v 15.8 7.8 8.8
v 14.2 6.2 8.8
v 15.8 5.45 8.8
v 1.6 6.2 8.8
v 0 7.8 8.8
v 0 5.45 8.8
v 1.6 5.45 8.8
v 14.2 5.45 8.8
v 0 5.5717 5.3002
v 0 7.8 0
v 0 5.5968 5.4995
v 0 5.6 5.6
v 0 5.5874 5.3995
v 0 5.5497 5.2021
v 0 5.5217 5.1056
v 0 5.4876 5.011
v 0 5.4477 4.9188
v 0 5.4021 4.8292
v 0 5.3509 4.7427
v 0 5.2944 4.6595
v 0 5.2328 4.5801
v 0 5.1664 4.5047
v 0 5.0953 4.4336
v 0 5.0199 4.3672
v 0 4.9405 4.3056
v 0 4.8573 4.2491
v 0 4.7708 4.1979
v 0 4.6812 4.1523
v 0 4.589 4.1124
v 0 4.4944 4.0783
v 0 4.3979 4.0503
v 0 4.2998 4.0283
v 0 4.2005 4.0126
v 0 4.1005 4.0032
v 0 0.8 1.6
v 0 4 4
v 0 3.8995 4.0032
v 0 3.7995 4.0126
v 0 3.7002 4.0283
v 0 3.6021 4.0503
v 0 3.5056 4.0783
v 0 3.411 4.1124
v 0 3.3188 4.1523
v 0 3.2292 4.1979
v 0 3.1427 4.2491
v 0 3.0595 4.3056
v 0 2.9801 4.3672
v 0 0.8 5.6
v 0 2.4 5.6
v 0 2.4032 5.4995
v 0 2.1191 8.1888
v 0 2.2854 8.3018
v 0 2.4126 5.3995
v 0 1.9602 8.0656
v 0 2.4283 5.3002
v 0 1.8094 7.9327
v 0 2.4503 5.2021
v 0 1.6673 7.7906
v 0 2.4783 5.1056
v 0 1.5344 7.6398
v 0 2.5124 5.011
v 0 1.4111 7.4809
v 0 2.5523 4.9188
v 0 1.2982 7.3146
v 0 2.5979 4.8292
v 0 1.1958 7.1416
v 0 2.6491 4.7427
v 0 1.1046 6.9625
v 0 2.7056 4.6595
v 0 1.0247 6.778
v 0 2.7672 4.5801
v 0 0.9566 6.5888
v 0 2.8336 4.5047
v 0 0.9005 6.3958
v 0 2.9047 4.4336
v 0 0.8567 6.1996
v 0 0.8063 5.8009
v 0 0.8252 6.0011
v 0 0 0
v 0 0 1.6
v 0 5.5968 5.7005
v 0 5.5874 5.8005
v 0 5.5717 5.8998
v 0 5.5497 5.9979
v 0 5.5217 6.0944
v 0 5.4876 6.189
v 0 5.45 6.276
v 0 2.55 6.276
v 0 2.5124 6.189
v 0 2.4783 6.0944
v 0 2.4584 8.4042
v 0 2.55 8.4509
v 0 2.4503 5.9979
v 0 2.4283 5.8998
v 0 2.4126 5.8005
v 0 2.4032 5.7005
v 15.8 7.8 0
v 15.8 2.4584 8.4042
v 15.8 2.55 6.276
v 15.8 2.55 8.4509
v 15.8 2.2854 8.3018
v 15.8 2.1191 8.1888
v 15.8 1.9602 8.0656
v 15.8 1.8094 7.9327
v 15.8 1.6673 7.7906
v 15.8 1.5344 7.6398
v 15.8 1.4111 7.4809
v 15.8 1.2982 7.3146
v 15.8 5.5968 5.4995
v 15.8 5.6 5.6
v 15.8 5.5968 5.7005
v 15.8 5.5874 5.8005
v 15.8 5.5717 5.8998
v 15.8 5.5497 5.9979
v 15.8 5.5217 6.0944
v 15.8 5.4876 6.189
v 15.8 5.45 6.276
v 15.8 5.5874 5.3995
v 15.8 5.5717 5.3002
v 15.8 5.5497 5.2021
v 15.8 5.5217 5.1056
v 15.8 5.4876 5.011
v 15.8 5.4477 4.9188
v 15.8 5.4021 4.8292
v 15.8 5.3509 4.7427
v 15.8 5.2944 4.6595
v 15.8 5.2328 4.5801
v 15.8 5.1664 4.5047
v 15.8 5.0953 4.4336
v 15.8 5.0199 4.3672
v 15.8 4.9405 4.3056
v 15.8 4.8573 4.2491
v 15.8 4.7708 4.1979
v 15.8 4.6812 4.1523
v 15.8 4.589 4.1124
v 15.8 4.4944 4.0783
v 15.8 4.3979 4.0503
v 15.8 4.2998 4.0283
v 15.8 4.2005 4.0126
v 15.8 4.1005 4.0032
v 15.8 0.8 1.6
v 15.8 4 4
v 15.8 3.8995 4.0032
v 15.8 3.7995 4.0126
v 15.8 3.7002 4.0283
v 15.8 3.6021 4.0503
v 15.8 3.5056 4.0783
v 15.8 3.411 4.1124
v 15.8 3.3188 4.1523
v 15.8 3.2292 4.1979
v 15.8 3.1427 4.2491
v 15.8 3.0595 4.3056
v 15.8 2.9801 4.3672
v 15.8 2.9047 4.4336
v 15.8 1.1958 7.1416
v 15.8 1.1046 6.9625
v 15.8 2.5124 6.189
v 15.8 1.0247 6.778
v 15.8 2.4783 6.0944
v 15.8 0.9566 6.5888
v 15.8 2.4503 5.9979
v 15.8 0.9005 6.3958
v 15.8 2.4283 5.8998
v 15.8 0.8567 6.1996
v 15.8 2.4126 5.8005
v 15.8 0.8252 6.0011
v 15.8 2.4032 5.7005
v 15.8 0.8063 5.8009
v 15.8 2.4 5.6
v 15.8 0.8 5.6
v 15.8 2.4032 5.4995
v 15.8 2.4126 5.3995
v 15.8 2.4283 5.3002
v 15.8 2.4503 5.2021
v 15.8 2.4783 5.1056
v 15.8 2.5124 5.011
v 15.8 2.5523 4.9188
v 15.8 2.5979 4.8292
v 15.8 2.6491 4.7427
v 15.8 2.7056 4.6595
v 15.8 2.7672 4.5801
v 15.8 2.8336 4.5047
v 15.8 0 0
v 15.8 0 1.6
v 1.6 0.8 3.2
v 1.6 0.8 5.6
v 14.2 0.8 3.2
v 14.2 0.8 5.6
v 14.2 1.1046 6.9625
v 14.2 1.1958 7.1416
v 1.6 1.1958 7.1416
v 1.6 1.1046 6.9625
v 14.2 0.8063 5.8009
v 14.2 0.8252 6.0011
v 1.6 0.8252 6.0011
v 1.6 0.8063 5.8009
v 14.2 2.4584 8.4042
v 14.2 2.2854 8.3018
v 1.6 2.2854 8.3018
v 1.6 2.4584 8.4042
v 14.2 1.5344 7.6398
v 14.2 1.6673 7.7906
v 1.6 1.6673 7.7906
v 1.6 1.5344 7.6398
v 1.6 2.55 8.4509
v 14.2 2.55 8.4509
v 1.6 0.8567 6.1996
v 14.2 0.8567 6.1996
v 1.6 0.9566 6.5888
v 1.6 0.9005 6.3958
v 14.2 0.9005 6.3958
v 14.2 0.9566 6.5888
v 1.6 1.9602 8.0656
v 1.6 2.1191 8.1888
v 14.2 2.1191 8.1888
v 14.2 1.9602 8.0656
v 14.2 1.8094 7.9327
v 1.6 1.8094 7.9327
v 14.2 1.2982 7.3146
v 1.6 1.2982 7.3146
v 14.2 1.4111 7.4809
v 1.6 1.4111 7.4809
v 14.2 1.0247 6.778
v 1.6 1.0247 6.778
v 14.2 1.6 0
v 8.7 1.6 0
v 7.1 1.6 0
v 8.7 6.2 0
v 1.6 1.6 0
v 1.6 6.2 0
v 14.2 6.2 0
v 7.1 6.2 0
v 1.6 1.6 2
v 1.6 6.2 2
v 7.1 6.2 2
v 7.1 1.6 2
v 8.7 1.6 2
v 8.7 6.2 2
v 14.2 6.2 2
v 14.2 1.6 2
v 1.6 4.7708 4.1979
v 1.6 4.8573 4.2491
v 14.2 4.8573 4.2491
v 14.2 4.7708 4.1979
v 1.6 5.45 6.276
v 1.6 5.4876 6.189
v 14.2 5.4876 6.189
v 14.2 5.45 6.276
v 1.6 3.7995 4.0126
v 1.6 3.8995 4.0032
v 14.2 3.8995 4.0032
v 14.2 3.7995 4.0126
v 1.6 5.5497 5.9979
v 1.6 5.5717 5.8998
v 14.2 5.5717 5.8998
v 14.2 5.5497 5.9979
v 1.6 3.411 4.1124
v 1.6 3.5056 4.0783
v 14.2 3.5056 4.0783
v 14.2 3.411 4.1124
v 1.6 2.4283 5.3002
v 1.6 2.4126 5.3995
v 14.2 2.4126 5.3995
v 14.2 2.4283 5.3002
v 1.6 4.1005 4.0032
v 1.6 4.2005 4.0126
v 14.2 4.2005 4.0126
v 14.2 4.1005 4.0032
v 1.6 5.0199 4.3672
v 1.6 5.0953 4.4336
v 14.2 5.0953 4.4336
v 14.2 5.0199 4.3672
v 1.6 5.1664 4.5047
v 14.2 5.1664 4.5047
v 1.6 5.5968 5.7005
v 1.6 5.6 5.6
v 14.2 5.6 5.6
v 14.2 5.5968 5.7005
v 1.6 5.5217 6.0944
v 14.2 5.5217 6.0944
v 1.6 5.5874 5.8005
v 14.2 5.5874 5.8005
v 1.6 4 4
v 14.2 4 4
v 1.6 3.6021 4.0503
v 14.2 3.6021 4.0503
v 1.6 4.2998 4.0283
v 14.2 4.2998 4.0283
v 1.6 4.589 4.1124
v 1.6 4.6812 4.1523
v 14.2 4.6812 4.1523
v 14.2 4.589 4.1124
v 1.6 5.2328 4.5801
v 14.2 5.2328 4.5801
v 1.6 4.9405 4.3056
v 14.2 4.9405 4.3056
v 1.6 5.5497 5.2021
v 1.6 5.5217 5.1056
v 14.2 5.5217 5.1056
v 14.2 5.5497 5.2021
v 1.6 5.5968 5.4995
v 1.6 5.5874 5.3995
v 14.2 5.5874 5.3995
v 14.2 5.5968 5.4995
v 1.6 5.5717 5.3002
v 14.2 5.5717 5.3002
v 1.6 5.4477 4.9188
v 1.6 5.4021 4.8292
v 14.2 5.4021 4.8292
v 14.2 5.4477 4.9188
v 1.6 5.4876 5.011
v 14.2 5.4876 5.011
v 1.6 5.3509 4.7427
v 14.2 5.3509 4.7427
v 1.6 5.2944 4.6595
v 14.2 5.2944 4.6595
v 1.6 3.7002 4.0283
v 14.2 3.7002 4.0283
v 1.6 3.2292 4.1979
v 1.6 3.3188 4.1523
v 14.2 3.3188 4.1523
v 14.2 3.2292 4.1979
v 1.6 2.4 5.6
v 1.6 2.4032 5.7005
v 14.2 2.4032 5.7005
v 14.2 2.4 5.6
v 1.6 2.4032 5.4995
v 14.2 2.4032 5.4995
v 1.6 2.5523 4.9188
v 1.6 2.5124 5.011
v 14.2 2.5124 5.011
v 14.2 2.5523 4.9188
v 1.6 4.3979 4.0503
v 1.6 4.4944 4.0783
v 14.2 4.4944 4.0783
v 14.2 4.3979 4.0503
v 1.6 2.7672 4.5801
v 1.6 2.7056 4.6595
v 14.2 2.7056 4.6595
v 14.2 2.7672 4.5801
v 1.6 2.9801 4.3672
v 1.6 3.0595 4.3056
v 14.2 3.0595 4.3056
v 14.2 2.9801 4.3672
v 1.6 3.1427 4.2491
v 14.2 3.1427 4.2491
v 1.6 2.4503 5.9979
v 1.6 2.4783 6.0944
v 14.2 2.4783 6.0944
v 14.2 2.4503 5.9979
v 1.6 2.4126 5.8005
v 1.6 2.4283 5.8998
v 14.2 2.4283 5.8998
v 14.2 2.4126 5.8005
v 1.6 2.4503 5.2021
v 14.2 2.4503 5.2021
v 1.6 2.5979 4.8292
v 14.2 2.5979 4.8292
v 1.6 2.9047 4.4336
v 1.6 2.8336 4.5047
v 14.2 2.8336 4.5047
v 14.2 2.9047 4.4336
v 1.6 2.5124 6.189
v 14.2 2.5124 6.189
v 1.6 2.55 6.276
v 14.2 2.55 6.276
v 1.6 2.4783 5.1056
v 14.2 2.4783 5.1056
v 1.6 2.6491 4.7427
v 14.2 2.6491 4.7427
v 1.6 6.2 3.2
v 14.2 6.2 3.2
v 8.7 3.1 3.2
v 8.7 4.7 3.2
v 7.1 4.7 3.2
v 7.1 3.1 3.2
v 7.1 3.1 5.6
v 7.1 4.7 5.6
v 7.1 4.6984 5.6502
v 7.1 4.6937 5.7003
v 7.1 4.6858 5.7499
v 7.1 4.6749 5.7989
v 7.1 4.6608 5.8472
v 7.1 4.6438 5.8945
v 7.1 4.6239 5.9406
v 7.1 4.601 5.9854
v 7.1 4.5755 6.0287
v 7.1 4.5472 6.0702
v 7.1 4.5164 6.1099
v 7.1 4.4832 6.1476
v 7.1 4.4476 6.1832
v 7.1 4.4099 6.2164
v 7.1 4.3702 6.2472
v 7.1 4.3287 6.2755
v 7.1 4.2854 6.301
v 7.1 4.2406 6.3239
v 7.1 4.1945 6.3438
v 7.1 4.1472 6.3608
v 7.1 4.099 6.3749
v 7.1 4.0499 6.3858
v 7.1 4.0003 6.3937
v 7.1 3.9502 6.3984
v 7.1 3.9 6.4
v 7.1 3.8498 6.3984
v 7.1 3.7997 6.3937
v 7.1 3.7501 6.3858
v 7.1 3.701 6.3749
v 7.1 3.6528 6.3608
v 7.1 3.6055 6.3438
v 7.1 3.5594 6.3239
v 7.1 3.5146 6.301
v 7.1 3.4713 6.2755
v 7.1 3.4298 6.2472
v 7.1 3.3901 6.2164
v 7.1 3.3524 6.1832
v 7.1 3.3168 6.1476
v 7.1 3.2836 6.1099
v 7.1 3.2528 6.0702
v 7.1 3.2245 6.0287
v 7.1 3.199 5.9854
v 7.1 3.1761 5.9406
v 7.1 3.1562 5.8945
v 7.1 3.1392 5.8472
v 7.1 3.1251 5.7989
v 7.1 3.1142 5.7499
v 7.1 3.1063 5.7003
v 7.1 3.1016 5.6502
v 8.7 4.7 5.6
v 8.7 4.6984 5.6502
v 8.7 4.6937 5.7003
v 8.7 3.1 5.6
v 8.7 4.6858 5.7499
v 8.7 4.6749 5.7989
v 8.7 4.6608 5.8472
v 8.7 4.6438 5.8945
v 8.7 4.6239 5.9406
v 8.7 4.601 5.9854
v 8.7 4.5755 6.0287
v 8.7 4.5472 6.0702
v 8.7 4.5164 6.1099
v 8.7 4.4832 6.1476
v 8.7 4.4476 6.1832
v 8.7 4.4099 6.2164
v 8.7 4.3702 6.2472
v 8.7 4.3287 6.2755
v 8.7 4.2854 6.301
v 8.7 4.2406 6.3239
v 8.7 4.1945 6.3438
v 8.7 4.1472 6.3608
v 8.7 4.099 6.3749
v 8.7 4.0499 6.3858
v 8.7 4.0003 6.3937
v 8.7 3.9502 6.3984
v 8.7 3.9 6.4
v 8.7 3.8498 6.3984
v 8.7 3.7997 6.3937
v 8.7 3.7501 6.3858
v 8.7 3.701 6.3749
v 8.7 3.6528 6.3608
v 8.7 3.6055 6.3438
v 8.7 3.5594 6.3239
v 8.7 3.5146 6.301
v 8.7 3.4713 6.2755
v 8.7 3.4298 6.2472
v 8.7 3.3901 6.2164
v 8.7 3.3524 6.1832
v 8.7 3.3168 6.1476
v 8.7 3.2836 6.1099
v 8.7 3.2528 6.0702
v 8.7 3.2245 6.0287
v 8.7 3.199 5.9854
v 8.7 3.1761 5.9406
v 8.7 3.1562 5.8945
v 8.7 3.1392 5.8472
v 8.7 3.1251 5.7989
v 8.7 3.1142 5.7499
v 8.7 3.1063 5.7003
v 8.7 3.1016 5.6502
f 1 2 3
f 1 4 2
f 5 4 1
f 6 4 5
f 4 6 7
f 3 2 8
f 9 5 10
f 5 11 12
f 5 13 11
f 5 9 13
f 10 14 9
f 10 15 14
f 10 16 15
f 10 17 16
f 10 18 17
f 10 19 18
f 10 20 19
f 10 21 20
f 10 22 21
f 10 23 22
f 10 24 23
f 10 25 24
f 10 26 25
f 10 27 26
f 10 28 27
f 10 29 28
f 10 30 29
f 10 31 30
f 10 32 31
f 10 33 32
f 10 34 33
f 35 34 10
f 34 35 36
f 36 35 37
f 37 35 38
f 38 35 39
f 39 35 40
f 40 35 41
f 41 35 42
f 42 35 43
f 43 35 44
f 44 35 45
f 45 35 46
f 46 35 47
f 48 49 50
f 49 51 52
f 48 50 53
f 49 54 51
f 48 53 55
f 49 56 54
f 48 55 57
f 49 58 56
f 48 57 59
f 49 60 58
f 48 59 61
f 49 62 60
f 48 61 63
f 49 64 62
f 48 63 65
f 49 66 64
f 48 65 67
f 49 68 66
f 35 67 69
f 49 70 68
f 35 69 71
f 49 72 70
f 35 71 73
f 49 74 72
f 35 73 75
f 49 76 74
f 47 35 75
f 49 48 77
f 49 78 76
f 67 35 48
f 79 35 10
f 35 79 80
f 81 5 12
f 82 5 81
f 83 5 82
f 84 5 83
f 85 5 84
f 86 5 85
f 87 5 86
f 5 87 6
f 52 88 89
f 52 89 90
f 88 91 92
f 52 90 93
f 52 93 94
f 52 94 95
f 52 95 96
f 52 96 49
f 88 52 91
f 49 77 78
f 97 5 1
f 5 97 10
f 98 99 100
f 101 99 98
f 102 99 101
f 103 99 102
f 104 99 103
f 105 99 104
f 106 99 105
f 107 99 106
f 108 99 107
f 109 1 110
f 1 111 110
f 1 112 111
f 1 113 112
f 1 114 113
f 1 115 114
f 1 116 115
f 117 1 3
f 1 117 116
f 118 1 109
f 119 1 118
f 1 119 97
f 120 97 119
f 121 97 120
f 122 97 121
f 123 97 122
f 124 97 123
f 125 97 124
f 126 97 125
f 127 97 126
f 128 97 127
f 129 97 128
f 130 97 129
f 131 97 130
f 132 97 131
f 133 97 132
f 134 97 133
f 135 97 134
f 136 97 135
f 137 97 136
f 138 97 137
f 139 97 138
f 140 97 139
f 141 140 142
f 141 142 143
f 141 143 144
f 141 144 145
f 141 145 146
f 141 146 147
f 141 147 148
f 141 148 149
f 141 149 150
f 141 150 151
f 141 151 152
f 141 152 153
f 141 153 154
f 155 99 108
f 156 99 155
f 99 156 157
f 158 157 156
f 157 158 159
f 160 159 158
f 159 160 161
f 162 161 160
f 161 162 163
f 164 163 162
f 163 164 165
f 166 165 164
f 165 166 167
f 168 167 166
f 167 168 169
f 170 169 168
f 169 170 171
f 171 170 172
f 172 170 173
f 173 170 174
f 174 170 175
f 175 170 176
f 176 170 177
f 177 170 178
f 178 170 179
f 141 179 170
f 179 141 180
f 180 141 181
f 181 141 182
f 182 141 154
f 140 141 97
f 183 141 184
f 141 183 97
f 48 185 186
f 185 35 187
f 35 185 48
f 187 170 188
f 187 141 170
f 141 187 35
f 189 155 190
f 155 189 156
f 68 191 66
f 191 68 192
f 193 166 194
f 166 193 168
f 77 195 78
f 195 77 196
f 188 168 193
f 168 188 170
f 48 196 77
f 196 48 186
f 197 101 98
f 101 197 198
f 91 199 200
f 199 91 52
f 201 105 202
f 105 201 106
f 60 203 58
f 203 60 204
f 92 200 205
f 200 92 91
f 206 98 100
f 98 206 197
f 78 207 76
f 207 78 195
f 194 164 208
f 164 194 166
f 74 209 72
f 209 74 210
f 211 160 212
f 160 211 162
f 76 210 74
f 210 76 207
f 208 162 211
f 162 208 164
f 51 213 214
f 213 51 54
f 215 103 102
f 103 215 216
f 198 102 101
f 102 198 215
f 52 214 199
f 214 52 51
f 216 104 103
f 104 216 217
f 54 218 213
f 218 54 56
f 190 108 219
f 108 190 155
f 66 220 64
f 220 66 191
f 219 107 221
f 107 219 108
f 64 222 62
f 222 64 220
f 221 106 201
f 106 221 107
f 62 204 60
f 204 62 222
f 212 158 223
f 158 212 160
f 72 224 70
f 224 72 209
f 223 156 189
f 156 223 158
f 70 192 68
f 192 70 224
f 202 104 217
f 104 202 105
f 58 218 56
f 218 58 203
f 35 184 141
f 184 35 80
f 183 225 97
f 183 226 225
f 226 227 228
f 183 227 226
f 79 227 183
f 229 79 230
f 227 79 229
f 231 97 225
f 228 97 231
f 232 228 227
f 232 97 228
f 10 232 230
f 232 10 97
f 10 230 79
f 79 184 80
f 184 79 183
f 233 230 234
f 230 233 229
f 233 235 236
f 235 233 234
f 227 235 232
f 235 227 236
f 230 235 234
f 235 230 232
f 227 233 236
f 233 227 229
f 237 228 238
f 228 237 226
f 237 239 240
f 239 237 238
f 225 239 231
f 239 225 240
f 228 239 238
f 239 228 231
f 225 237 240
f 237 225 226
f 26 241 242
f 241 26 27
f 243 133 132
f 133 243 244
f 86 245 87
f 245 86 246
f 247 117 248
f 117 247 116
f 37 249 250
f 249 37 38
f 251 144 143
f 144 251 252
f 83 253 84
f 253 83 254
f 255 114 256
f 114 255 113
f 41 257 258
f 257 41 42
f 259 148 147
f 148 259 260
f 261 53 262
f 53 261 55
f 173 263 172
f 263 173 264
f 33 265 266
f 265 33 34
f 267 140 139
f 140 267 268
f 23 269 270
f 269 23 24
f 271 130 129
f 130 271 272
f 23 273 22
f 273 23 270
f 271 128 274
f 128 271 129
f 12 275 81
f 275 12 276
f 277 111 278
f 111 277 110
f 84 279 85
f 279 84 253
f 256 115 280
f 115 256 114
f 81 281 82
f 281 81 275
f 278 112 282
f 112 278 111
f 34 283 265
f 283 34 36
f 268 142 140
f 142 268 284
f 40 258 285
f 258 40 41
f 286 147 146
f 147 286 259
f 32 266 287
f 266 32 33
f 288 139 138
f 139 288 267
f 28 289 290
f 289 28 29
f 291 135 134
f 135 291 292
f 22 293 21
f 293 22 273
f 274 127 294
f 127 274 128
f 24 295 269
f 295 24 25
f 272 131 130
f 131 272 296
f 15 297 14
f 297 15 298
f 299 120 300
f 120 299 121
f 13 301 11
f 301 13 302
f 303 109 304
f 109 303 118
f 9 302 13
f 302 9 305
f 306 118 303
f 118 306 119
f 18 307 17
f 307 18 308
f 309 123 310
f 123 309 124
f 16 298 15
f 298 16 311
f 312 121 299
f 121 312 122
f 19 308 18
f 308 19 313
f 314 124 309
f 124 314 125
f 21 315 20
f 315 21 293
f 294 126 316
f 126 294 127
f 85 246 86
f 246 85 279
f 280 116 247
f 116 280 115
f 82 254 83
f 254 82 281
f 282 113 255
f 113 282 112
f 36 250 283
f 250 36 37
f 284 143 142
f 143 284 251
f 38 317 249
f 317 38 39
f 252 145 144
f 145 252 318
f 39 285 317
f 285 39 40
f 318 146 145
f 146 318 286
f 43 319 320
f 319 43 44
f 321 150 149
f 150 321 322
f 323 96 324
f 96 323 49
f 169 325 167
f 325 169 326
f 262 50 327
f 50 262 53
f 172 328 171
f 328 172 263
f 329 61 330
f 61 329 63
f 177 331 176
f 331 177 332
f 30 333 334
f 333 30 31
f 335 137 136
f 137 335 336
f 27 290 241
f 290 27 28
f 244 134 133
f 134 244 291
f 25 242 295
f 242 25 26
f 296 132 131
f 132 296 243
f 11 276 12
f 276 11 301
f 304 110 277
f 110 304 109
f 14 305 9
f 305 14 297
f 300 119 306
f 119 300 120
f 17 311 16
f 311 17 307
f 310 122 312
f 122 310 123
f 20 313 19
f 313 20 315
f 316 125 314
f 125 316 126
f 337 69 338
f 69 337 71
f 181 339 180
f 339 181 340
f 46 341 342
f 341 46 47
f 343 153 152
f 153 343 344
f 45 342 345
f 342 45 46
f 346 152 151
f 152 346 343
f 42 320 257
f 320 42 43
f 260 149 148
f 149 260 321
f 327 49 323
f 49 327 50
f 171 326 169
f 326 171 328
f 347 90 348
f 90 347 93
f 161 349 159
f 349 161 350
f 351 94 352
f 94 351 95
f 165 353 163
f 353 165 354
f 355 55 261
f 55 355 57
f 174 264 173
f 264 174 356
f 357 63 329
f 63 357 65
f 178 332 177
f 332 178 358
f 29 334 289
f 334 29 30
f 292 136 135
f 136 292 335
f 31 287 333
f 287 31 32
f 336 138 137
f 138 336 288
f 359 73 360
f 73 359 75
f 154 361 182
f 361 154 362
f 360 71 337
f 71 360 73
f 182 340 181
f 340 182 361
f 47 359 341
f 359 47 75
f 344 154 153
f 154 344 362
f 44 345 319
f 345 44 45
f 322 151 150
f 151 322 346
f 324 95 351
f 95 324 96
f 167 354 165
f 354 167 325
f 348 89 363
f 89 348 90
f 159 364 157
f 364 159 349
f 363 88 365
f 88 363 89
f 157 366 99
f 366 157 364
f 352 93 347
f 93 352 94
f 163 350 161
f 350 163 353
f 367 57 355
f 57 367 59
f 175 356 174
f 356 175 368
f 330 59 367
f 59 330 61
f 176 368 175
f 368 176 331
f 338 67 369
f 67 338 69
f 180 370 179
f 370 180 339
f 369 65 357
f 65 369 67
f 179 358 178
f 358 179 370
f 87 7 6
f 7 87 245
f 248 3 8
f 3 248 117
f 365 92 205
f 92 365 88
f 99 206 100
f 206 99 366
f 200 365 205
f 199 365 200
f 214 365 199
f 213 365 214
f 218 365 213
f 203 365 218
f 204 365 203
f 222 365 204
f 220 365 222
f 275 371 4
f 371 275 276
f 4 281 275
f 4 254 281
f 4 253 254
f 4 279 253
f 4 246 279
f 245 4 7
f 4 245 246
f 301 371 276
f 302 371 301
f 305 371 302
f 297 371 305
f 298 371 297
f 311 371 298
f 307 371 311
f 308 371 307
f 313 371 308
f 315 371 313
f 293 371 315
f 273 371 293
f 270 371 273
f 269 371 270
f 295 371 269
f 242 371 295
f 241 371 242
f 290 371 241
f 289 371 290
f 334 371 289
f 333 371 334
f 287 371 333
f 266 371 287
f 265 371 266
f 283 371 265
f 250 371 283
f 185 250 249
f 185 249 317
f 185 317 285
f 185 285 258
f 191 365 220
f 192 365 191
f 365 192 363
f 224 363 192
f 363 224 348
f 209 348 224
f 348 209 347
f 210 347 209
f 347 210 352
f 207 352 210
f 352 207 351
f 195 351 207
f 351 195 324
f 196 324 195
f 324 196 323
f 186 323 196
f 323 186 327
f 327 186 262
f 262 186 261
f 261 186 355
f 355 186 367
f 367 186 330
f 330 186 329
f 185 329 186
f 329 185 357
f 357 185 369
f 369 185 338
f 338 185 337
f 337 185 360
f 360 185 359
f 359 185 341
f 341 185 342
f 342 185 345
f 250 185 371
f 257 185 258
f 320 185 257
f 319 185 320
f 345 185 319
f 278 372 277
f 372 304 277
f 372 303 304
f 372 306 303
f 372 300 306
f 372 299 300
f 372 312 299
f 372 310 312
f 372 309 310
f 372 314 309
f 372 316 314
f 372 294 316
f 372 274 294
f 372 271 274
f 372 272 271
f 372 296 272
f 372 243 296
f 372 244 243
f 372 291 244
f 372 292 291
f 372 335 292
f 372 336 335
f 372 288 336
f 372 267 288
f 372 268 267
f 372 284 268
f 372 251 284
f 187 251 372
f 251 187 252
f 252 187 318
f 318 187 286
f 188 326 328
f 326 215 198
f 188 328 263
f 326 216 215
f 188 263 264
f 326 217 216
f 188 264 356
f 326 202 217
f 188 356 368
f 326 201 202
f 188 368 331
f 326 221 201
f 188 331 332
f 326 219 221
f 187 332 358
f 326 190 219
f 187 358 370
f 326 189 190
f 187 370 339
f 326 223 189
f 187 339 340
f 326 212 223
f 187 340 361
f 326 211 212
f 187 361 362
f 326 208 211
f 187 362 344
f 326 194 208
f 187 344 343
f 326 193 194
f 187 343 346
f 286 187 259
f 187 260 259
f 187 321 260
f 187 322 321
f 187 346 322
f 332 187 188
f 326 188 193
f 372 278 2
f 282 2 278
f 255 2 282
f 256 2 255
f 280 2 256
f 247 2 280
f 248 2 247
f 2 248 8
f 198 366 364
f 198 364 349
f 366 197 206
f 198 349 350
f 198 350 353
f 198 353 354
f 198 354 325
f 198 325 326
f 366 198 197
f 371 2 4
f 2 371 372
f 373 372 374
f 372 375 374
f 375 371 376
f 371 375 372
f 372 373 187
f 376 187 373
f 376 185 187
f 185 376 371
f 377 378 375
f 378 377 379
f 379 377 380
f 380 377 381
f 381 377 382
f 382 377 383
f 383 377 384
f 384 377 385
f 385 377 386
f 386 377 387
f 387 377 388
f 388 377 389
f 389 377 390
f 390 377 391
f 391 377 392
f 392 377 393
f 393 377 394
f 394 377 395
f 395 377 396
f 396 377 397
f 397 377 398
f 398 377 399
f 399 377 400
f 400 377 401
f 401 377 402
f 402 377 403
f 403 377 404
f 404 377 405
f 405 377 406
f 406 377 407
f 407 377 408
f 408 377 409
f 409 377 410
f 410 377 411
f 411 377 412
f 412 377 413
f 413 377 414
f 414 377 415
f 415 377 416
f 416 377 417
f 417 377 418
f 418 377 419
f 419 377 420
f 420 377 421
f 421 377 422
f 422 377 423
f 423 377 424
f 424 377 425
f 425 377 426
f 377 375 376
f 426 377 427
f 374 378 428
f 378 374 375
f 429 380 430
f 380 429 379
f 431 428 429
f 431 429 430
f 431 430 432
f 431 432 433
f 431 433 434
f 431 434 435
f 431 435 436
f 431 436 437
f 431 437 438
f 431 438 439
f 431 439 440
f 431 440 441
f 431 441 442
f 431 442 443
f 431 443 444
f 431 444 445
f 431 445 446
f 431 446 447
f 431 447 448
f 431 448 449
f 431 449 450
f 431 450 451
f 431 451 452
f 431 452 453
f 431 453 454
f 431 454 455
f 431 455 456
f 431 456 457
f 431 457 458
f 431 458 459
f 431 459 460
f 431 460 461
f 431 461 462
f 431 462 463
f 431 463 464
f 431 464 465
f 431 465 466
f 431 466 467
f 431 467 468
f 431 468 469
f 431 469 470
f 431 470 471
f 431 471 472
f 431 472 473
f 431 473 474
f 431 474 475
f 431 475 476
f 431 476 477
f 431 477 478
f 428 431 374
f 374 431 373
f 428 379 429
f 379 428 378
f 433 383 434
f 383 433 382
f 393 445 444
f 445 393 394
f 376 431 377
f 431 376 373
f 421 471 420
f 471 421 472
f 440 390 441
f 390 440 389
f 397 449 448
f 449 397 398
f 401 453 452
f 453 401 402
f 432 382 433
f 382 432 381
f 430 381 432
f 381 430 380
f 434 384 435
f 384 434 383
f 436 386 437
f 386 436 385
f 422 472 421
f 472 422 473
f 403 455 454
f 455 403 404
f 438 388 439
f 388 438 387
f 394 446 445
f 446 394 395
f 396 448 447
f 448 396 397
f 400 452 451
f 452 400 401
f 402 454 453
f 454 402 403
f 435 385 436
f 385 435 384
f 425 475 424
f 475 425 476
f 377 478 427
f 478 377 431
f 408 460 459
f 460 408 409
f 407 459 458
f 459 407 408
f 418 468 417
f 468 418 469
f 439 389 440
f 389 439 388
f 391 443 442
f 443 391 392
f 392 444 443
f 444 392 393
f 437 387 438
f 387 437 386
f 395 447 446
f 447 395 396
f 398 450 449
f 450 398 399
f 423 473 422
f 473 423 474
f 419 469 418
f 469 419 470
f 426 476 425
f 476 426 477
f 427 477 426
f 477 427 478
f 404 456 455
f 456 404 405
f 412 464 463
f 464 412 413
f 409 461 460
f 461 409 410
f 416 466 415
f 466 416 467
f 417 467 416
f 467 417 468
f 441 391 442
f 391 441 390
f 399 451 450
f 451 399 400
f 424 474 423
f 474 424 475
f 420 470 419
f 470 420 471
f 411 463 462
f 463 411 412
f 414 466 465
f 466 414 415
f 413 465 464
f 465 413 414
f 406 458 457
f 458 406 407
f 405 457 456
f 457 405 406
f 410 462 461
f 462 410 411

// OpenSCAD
eps = 0.001;

modelScale = 1.0;



// printability corrections; values should be zero for real object dimensions 
PRINTABLE = 1;
correction_hi1 = PRINTABLE ? 0.4 : 0.0;


unit_size = 7.8*modelScale;
pitch = 8.0*modelScale;

nr_length_units = 2;
nr_width_units = 1;
rHingeAxle = 3.2/2*modelScale;
offsetHingeAxle = pitch/2+rHingeAxle;
rFancy = 6.4/2*modelScale;

t1 = 1.6*modelScale;
t2 = 0.8*modelScale;
h1 = 1.6*modelScale; 
h2 = offsetHingeAxle+rFancy;
h3 = 2.4*modelScale;
hi1 = h1+correction_hi1; // inner height
clamping = 0.3*modelScale;

length = nr_length_units*unit_size + (nr_length_units - 1) * (pitch - unit_size);
width = nr_width_units*unit_size + (nr_width_units - 1) * (pitch - unit_size);
echo("length", length);
echo("width", width);



module drawHingeBrickBase() 
{
	difference()
	{
		union()
		{	
            hull()
            {
                translate([0,t2+rFancy,offsetHingeAxle]) rotate([0,90,0]) cylinder(length,rFancy,rFancy,$fn=100*modelScale);
                translate([0,t2,h1-eps]) cube([length,width-t2,eps]);
                translate([0,width-eps,h1-eps]) cube([length,eps,h2-h1+eps]);
            }
            
			cube([length,width,h1]);               
		}
		union()
		{	
            lx = (length-3*t1)/2;
			translate([t1,t1,-eps]) cube([lx,width-2*t1,hi1+eps]);
            translate([2*t1+lx,t1,-eps]) cube([lx,width-2*t1,hi1+eps]);
            translate([-eps,pitch/2,offsetHingeAxle]) rotate([0,90,0]) cylinder(length+2*eps,rHingeAxle,rHingeAxle,$fn=100*modelScale);        translate([-eps,pitch/2-rHingeAxle+clamping/2,offsetHingeAxle]) cube([length+2*eps,2*rHingeAxle-clamping,rFancy+eps]);    
            translate([t1,-eps,2*h1]) cube([length-2*t1,width-t1+eps,h2-2*h1+eps]);    
		}
	}
    
    hull()
    {
        translate([length/2-t1/2,width/2,2*h1+h3]) rotate([0,90,0]) cylinder(t1,t1/2,t1/2,$fn=100*modelScale);
        translate([length/2-t1/2,width/2-t1/2,2*h1-eps]) cube([t1,t1,eps]);
    }    
}


drawHingeBrickBase();
